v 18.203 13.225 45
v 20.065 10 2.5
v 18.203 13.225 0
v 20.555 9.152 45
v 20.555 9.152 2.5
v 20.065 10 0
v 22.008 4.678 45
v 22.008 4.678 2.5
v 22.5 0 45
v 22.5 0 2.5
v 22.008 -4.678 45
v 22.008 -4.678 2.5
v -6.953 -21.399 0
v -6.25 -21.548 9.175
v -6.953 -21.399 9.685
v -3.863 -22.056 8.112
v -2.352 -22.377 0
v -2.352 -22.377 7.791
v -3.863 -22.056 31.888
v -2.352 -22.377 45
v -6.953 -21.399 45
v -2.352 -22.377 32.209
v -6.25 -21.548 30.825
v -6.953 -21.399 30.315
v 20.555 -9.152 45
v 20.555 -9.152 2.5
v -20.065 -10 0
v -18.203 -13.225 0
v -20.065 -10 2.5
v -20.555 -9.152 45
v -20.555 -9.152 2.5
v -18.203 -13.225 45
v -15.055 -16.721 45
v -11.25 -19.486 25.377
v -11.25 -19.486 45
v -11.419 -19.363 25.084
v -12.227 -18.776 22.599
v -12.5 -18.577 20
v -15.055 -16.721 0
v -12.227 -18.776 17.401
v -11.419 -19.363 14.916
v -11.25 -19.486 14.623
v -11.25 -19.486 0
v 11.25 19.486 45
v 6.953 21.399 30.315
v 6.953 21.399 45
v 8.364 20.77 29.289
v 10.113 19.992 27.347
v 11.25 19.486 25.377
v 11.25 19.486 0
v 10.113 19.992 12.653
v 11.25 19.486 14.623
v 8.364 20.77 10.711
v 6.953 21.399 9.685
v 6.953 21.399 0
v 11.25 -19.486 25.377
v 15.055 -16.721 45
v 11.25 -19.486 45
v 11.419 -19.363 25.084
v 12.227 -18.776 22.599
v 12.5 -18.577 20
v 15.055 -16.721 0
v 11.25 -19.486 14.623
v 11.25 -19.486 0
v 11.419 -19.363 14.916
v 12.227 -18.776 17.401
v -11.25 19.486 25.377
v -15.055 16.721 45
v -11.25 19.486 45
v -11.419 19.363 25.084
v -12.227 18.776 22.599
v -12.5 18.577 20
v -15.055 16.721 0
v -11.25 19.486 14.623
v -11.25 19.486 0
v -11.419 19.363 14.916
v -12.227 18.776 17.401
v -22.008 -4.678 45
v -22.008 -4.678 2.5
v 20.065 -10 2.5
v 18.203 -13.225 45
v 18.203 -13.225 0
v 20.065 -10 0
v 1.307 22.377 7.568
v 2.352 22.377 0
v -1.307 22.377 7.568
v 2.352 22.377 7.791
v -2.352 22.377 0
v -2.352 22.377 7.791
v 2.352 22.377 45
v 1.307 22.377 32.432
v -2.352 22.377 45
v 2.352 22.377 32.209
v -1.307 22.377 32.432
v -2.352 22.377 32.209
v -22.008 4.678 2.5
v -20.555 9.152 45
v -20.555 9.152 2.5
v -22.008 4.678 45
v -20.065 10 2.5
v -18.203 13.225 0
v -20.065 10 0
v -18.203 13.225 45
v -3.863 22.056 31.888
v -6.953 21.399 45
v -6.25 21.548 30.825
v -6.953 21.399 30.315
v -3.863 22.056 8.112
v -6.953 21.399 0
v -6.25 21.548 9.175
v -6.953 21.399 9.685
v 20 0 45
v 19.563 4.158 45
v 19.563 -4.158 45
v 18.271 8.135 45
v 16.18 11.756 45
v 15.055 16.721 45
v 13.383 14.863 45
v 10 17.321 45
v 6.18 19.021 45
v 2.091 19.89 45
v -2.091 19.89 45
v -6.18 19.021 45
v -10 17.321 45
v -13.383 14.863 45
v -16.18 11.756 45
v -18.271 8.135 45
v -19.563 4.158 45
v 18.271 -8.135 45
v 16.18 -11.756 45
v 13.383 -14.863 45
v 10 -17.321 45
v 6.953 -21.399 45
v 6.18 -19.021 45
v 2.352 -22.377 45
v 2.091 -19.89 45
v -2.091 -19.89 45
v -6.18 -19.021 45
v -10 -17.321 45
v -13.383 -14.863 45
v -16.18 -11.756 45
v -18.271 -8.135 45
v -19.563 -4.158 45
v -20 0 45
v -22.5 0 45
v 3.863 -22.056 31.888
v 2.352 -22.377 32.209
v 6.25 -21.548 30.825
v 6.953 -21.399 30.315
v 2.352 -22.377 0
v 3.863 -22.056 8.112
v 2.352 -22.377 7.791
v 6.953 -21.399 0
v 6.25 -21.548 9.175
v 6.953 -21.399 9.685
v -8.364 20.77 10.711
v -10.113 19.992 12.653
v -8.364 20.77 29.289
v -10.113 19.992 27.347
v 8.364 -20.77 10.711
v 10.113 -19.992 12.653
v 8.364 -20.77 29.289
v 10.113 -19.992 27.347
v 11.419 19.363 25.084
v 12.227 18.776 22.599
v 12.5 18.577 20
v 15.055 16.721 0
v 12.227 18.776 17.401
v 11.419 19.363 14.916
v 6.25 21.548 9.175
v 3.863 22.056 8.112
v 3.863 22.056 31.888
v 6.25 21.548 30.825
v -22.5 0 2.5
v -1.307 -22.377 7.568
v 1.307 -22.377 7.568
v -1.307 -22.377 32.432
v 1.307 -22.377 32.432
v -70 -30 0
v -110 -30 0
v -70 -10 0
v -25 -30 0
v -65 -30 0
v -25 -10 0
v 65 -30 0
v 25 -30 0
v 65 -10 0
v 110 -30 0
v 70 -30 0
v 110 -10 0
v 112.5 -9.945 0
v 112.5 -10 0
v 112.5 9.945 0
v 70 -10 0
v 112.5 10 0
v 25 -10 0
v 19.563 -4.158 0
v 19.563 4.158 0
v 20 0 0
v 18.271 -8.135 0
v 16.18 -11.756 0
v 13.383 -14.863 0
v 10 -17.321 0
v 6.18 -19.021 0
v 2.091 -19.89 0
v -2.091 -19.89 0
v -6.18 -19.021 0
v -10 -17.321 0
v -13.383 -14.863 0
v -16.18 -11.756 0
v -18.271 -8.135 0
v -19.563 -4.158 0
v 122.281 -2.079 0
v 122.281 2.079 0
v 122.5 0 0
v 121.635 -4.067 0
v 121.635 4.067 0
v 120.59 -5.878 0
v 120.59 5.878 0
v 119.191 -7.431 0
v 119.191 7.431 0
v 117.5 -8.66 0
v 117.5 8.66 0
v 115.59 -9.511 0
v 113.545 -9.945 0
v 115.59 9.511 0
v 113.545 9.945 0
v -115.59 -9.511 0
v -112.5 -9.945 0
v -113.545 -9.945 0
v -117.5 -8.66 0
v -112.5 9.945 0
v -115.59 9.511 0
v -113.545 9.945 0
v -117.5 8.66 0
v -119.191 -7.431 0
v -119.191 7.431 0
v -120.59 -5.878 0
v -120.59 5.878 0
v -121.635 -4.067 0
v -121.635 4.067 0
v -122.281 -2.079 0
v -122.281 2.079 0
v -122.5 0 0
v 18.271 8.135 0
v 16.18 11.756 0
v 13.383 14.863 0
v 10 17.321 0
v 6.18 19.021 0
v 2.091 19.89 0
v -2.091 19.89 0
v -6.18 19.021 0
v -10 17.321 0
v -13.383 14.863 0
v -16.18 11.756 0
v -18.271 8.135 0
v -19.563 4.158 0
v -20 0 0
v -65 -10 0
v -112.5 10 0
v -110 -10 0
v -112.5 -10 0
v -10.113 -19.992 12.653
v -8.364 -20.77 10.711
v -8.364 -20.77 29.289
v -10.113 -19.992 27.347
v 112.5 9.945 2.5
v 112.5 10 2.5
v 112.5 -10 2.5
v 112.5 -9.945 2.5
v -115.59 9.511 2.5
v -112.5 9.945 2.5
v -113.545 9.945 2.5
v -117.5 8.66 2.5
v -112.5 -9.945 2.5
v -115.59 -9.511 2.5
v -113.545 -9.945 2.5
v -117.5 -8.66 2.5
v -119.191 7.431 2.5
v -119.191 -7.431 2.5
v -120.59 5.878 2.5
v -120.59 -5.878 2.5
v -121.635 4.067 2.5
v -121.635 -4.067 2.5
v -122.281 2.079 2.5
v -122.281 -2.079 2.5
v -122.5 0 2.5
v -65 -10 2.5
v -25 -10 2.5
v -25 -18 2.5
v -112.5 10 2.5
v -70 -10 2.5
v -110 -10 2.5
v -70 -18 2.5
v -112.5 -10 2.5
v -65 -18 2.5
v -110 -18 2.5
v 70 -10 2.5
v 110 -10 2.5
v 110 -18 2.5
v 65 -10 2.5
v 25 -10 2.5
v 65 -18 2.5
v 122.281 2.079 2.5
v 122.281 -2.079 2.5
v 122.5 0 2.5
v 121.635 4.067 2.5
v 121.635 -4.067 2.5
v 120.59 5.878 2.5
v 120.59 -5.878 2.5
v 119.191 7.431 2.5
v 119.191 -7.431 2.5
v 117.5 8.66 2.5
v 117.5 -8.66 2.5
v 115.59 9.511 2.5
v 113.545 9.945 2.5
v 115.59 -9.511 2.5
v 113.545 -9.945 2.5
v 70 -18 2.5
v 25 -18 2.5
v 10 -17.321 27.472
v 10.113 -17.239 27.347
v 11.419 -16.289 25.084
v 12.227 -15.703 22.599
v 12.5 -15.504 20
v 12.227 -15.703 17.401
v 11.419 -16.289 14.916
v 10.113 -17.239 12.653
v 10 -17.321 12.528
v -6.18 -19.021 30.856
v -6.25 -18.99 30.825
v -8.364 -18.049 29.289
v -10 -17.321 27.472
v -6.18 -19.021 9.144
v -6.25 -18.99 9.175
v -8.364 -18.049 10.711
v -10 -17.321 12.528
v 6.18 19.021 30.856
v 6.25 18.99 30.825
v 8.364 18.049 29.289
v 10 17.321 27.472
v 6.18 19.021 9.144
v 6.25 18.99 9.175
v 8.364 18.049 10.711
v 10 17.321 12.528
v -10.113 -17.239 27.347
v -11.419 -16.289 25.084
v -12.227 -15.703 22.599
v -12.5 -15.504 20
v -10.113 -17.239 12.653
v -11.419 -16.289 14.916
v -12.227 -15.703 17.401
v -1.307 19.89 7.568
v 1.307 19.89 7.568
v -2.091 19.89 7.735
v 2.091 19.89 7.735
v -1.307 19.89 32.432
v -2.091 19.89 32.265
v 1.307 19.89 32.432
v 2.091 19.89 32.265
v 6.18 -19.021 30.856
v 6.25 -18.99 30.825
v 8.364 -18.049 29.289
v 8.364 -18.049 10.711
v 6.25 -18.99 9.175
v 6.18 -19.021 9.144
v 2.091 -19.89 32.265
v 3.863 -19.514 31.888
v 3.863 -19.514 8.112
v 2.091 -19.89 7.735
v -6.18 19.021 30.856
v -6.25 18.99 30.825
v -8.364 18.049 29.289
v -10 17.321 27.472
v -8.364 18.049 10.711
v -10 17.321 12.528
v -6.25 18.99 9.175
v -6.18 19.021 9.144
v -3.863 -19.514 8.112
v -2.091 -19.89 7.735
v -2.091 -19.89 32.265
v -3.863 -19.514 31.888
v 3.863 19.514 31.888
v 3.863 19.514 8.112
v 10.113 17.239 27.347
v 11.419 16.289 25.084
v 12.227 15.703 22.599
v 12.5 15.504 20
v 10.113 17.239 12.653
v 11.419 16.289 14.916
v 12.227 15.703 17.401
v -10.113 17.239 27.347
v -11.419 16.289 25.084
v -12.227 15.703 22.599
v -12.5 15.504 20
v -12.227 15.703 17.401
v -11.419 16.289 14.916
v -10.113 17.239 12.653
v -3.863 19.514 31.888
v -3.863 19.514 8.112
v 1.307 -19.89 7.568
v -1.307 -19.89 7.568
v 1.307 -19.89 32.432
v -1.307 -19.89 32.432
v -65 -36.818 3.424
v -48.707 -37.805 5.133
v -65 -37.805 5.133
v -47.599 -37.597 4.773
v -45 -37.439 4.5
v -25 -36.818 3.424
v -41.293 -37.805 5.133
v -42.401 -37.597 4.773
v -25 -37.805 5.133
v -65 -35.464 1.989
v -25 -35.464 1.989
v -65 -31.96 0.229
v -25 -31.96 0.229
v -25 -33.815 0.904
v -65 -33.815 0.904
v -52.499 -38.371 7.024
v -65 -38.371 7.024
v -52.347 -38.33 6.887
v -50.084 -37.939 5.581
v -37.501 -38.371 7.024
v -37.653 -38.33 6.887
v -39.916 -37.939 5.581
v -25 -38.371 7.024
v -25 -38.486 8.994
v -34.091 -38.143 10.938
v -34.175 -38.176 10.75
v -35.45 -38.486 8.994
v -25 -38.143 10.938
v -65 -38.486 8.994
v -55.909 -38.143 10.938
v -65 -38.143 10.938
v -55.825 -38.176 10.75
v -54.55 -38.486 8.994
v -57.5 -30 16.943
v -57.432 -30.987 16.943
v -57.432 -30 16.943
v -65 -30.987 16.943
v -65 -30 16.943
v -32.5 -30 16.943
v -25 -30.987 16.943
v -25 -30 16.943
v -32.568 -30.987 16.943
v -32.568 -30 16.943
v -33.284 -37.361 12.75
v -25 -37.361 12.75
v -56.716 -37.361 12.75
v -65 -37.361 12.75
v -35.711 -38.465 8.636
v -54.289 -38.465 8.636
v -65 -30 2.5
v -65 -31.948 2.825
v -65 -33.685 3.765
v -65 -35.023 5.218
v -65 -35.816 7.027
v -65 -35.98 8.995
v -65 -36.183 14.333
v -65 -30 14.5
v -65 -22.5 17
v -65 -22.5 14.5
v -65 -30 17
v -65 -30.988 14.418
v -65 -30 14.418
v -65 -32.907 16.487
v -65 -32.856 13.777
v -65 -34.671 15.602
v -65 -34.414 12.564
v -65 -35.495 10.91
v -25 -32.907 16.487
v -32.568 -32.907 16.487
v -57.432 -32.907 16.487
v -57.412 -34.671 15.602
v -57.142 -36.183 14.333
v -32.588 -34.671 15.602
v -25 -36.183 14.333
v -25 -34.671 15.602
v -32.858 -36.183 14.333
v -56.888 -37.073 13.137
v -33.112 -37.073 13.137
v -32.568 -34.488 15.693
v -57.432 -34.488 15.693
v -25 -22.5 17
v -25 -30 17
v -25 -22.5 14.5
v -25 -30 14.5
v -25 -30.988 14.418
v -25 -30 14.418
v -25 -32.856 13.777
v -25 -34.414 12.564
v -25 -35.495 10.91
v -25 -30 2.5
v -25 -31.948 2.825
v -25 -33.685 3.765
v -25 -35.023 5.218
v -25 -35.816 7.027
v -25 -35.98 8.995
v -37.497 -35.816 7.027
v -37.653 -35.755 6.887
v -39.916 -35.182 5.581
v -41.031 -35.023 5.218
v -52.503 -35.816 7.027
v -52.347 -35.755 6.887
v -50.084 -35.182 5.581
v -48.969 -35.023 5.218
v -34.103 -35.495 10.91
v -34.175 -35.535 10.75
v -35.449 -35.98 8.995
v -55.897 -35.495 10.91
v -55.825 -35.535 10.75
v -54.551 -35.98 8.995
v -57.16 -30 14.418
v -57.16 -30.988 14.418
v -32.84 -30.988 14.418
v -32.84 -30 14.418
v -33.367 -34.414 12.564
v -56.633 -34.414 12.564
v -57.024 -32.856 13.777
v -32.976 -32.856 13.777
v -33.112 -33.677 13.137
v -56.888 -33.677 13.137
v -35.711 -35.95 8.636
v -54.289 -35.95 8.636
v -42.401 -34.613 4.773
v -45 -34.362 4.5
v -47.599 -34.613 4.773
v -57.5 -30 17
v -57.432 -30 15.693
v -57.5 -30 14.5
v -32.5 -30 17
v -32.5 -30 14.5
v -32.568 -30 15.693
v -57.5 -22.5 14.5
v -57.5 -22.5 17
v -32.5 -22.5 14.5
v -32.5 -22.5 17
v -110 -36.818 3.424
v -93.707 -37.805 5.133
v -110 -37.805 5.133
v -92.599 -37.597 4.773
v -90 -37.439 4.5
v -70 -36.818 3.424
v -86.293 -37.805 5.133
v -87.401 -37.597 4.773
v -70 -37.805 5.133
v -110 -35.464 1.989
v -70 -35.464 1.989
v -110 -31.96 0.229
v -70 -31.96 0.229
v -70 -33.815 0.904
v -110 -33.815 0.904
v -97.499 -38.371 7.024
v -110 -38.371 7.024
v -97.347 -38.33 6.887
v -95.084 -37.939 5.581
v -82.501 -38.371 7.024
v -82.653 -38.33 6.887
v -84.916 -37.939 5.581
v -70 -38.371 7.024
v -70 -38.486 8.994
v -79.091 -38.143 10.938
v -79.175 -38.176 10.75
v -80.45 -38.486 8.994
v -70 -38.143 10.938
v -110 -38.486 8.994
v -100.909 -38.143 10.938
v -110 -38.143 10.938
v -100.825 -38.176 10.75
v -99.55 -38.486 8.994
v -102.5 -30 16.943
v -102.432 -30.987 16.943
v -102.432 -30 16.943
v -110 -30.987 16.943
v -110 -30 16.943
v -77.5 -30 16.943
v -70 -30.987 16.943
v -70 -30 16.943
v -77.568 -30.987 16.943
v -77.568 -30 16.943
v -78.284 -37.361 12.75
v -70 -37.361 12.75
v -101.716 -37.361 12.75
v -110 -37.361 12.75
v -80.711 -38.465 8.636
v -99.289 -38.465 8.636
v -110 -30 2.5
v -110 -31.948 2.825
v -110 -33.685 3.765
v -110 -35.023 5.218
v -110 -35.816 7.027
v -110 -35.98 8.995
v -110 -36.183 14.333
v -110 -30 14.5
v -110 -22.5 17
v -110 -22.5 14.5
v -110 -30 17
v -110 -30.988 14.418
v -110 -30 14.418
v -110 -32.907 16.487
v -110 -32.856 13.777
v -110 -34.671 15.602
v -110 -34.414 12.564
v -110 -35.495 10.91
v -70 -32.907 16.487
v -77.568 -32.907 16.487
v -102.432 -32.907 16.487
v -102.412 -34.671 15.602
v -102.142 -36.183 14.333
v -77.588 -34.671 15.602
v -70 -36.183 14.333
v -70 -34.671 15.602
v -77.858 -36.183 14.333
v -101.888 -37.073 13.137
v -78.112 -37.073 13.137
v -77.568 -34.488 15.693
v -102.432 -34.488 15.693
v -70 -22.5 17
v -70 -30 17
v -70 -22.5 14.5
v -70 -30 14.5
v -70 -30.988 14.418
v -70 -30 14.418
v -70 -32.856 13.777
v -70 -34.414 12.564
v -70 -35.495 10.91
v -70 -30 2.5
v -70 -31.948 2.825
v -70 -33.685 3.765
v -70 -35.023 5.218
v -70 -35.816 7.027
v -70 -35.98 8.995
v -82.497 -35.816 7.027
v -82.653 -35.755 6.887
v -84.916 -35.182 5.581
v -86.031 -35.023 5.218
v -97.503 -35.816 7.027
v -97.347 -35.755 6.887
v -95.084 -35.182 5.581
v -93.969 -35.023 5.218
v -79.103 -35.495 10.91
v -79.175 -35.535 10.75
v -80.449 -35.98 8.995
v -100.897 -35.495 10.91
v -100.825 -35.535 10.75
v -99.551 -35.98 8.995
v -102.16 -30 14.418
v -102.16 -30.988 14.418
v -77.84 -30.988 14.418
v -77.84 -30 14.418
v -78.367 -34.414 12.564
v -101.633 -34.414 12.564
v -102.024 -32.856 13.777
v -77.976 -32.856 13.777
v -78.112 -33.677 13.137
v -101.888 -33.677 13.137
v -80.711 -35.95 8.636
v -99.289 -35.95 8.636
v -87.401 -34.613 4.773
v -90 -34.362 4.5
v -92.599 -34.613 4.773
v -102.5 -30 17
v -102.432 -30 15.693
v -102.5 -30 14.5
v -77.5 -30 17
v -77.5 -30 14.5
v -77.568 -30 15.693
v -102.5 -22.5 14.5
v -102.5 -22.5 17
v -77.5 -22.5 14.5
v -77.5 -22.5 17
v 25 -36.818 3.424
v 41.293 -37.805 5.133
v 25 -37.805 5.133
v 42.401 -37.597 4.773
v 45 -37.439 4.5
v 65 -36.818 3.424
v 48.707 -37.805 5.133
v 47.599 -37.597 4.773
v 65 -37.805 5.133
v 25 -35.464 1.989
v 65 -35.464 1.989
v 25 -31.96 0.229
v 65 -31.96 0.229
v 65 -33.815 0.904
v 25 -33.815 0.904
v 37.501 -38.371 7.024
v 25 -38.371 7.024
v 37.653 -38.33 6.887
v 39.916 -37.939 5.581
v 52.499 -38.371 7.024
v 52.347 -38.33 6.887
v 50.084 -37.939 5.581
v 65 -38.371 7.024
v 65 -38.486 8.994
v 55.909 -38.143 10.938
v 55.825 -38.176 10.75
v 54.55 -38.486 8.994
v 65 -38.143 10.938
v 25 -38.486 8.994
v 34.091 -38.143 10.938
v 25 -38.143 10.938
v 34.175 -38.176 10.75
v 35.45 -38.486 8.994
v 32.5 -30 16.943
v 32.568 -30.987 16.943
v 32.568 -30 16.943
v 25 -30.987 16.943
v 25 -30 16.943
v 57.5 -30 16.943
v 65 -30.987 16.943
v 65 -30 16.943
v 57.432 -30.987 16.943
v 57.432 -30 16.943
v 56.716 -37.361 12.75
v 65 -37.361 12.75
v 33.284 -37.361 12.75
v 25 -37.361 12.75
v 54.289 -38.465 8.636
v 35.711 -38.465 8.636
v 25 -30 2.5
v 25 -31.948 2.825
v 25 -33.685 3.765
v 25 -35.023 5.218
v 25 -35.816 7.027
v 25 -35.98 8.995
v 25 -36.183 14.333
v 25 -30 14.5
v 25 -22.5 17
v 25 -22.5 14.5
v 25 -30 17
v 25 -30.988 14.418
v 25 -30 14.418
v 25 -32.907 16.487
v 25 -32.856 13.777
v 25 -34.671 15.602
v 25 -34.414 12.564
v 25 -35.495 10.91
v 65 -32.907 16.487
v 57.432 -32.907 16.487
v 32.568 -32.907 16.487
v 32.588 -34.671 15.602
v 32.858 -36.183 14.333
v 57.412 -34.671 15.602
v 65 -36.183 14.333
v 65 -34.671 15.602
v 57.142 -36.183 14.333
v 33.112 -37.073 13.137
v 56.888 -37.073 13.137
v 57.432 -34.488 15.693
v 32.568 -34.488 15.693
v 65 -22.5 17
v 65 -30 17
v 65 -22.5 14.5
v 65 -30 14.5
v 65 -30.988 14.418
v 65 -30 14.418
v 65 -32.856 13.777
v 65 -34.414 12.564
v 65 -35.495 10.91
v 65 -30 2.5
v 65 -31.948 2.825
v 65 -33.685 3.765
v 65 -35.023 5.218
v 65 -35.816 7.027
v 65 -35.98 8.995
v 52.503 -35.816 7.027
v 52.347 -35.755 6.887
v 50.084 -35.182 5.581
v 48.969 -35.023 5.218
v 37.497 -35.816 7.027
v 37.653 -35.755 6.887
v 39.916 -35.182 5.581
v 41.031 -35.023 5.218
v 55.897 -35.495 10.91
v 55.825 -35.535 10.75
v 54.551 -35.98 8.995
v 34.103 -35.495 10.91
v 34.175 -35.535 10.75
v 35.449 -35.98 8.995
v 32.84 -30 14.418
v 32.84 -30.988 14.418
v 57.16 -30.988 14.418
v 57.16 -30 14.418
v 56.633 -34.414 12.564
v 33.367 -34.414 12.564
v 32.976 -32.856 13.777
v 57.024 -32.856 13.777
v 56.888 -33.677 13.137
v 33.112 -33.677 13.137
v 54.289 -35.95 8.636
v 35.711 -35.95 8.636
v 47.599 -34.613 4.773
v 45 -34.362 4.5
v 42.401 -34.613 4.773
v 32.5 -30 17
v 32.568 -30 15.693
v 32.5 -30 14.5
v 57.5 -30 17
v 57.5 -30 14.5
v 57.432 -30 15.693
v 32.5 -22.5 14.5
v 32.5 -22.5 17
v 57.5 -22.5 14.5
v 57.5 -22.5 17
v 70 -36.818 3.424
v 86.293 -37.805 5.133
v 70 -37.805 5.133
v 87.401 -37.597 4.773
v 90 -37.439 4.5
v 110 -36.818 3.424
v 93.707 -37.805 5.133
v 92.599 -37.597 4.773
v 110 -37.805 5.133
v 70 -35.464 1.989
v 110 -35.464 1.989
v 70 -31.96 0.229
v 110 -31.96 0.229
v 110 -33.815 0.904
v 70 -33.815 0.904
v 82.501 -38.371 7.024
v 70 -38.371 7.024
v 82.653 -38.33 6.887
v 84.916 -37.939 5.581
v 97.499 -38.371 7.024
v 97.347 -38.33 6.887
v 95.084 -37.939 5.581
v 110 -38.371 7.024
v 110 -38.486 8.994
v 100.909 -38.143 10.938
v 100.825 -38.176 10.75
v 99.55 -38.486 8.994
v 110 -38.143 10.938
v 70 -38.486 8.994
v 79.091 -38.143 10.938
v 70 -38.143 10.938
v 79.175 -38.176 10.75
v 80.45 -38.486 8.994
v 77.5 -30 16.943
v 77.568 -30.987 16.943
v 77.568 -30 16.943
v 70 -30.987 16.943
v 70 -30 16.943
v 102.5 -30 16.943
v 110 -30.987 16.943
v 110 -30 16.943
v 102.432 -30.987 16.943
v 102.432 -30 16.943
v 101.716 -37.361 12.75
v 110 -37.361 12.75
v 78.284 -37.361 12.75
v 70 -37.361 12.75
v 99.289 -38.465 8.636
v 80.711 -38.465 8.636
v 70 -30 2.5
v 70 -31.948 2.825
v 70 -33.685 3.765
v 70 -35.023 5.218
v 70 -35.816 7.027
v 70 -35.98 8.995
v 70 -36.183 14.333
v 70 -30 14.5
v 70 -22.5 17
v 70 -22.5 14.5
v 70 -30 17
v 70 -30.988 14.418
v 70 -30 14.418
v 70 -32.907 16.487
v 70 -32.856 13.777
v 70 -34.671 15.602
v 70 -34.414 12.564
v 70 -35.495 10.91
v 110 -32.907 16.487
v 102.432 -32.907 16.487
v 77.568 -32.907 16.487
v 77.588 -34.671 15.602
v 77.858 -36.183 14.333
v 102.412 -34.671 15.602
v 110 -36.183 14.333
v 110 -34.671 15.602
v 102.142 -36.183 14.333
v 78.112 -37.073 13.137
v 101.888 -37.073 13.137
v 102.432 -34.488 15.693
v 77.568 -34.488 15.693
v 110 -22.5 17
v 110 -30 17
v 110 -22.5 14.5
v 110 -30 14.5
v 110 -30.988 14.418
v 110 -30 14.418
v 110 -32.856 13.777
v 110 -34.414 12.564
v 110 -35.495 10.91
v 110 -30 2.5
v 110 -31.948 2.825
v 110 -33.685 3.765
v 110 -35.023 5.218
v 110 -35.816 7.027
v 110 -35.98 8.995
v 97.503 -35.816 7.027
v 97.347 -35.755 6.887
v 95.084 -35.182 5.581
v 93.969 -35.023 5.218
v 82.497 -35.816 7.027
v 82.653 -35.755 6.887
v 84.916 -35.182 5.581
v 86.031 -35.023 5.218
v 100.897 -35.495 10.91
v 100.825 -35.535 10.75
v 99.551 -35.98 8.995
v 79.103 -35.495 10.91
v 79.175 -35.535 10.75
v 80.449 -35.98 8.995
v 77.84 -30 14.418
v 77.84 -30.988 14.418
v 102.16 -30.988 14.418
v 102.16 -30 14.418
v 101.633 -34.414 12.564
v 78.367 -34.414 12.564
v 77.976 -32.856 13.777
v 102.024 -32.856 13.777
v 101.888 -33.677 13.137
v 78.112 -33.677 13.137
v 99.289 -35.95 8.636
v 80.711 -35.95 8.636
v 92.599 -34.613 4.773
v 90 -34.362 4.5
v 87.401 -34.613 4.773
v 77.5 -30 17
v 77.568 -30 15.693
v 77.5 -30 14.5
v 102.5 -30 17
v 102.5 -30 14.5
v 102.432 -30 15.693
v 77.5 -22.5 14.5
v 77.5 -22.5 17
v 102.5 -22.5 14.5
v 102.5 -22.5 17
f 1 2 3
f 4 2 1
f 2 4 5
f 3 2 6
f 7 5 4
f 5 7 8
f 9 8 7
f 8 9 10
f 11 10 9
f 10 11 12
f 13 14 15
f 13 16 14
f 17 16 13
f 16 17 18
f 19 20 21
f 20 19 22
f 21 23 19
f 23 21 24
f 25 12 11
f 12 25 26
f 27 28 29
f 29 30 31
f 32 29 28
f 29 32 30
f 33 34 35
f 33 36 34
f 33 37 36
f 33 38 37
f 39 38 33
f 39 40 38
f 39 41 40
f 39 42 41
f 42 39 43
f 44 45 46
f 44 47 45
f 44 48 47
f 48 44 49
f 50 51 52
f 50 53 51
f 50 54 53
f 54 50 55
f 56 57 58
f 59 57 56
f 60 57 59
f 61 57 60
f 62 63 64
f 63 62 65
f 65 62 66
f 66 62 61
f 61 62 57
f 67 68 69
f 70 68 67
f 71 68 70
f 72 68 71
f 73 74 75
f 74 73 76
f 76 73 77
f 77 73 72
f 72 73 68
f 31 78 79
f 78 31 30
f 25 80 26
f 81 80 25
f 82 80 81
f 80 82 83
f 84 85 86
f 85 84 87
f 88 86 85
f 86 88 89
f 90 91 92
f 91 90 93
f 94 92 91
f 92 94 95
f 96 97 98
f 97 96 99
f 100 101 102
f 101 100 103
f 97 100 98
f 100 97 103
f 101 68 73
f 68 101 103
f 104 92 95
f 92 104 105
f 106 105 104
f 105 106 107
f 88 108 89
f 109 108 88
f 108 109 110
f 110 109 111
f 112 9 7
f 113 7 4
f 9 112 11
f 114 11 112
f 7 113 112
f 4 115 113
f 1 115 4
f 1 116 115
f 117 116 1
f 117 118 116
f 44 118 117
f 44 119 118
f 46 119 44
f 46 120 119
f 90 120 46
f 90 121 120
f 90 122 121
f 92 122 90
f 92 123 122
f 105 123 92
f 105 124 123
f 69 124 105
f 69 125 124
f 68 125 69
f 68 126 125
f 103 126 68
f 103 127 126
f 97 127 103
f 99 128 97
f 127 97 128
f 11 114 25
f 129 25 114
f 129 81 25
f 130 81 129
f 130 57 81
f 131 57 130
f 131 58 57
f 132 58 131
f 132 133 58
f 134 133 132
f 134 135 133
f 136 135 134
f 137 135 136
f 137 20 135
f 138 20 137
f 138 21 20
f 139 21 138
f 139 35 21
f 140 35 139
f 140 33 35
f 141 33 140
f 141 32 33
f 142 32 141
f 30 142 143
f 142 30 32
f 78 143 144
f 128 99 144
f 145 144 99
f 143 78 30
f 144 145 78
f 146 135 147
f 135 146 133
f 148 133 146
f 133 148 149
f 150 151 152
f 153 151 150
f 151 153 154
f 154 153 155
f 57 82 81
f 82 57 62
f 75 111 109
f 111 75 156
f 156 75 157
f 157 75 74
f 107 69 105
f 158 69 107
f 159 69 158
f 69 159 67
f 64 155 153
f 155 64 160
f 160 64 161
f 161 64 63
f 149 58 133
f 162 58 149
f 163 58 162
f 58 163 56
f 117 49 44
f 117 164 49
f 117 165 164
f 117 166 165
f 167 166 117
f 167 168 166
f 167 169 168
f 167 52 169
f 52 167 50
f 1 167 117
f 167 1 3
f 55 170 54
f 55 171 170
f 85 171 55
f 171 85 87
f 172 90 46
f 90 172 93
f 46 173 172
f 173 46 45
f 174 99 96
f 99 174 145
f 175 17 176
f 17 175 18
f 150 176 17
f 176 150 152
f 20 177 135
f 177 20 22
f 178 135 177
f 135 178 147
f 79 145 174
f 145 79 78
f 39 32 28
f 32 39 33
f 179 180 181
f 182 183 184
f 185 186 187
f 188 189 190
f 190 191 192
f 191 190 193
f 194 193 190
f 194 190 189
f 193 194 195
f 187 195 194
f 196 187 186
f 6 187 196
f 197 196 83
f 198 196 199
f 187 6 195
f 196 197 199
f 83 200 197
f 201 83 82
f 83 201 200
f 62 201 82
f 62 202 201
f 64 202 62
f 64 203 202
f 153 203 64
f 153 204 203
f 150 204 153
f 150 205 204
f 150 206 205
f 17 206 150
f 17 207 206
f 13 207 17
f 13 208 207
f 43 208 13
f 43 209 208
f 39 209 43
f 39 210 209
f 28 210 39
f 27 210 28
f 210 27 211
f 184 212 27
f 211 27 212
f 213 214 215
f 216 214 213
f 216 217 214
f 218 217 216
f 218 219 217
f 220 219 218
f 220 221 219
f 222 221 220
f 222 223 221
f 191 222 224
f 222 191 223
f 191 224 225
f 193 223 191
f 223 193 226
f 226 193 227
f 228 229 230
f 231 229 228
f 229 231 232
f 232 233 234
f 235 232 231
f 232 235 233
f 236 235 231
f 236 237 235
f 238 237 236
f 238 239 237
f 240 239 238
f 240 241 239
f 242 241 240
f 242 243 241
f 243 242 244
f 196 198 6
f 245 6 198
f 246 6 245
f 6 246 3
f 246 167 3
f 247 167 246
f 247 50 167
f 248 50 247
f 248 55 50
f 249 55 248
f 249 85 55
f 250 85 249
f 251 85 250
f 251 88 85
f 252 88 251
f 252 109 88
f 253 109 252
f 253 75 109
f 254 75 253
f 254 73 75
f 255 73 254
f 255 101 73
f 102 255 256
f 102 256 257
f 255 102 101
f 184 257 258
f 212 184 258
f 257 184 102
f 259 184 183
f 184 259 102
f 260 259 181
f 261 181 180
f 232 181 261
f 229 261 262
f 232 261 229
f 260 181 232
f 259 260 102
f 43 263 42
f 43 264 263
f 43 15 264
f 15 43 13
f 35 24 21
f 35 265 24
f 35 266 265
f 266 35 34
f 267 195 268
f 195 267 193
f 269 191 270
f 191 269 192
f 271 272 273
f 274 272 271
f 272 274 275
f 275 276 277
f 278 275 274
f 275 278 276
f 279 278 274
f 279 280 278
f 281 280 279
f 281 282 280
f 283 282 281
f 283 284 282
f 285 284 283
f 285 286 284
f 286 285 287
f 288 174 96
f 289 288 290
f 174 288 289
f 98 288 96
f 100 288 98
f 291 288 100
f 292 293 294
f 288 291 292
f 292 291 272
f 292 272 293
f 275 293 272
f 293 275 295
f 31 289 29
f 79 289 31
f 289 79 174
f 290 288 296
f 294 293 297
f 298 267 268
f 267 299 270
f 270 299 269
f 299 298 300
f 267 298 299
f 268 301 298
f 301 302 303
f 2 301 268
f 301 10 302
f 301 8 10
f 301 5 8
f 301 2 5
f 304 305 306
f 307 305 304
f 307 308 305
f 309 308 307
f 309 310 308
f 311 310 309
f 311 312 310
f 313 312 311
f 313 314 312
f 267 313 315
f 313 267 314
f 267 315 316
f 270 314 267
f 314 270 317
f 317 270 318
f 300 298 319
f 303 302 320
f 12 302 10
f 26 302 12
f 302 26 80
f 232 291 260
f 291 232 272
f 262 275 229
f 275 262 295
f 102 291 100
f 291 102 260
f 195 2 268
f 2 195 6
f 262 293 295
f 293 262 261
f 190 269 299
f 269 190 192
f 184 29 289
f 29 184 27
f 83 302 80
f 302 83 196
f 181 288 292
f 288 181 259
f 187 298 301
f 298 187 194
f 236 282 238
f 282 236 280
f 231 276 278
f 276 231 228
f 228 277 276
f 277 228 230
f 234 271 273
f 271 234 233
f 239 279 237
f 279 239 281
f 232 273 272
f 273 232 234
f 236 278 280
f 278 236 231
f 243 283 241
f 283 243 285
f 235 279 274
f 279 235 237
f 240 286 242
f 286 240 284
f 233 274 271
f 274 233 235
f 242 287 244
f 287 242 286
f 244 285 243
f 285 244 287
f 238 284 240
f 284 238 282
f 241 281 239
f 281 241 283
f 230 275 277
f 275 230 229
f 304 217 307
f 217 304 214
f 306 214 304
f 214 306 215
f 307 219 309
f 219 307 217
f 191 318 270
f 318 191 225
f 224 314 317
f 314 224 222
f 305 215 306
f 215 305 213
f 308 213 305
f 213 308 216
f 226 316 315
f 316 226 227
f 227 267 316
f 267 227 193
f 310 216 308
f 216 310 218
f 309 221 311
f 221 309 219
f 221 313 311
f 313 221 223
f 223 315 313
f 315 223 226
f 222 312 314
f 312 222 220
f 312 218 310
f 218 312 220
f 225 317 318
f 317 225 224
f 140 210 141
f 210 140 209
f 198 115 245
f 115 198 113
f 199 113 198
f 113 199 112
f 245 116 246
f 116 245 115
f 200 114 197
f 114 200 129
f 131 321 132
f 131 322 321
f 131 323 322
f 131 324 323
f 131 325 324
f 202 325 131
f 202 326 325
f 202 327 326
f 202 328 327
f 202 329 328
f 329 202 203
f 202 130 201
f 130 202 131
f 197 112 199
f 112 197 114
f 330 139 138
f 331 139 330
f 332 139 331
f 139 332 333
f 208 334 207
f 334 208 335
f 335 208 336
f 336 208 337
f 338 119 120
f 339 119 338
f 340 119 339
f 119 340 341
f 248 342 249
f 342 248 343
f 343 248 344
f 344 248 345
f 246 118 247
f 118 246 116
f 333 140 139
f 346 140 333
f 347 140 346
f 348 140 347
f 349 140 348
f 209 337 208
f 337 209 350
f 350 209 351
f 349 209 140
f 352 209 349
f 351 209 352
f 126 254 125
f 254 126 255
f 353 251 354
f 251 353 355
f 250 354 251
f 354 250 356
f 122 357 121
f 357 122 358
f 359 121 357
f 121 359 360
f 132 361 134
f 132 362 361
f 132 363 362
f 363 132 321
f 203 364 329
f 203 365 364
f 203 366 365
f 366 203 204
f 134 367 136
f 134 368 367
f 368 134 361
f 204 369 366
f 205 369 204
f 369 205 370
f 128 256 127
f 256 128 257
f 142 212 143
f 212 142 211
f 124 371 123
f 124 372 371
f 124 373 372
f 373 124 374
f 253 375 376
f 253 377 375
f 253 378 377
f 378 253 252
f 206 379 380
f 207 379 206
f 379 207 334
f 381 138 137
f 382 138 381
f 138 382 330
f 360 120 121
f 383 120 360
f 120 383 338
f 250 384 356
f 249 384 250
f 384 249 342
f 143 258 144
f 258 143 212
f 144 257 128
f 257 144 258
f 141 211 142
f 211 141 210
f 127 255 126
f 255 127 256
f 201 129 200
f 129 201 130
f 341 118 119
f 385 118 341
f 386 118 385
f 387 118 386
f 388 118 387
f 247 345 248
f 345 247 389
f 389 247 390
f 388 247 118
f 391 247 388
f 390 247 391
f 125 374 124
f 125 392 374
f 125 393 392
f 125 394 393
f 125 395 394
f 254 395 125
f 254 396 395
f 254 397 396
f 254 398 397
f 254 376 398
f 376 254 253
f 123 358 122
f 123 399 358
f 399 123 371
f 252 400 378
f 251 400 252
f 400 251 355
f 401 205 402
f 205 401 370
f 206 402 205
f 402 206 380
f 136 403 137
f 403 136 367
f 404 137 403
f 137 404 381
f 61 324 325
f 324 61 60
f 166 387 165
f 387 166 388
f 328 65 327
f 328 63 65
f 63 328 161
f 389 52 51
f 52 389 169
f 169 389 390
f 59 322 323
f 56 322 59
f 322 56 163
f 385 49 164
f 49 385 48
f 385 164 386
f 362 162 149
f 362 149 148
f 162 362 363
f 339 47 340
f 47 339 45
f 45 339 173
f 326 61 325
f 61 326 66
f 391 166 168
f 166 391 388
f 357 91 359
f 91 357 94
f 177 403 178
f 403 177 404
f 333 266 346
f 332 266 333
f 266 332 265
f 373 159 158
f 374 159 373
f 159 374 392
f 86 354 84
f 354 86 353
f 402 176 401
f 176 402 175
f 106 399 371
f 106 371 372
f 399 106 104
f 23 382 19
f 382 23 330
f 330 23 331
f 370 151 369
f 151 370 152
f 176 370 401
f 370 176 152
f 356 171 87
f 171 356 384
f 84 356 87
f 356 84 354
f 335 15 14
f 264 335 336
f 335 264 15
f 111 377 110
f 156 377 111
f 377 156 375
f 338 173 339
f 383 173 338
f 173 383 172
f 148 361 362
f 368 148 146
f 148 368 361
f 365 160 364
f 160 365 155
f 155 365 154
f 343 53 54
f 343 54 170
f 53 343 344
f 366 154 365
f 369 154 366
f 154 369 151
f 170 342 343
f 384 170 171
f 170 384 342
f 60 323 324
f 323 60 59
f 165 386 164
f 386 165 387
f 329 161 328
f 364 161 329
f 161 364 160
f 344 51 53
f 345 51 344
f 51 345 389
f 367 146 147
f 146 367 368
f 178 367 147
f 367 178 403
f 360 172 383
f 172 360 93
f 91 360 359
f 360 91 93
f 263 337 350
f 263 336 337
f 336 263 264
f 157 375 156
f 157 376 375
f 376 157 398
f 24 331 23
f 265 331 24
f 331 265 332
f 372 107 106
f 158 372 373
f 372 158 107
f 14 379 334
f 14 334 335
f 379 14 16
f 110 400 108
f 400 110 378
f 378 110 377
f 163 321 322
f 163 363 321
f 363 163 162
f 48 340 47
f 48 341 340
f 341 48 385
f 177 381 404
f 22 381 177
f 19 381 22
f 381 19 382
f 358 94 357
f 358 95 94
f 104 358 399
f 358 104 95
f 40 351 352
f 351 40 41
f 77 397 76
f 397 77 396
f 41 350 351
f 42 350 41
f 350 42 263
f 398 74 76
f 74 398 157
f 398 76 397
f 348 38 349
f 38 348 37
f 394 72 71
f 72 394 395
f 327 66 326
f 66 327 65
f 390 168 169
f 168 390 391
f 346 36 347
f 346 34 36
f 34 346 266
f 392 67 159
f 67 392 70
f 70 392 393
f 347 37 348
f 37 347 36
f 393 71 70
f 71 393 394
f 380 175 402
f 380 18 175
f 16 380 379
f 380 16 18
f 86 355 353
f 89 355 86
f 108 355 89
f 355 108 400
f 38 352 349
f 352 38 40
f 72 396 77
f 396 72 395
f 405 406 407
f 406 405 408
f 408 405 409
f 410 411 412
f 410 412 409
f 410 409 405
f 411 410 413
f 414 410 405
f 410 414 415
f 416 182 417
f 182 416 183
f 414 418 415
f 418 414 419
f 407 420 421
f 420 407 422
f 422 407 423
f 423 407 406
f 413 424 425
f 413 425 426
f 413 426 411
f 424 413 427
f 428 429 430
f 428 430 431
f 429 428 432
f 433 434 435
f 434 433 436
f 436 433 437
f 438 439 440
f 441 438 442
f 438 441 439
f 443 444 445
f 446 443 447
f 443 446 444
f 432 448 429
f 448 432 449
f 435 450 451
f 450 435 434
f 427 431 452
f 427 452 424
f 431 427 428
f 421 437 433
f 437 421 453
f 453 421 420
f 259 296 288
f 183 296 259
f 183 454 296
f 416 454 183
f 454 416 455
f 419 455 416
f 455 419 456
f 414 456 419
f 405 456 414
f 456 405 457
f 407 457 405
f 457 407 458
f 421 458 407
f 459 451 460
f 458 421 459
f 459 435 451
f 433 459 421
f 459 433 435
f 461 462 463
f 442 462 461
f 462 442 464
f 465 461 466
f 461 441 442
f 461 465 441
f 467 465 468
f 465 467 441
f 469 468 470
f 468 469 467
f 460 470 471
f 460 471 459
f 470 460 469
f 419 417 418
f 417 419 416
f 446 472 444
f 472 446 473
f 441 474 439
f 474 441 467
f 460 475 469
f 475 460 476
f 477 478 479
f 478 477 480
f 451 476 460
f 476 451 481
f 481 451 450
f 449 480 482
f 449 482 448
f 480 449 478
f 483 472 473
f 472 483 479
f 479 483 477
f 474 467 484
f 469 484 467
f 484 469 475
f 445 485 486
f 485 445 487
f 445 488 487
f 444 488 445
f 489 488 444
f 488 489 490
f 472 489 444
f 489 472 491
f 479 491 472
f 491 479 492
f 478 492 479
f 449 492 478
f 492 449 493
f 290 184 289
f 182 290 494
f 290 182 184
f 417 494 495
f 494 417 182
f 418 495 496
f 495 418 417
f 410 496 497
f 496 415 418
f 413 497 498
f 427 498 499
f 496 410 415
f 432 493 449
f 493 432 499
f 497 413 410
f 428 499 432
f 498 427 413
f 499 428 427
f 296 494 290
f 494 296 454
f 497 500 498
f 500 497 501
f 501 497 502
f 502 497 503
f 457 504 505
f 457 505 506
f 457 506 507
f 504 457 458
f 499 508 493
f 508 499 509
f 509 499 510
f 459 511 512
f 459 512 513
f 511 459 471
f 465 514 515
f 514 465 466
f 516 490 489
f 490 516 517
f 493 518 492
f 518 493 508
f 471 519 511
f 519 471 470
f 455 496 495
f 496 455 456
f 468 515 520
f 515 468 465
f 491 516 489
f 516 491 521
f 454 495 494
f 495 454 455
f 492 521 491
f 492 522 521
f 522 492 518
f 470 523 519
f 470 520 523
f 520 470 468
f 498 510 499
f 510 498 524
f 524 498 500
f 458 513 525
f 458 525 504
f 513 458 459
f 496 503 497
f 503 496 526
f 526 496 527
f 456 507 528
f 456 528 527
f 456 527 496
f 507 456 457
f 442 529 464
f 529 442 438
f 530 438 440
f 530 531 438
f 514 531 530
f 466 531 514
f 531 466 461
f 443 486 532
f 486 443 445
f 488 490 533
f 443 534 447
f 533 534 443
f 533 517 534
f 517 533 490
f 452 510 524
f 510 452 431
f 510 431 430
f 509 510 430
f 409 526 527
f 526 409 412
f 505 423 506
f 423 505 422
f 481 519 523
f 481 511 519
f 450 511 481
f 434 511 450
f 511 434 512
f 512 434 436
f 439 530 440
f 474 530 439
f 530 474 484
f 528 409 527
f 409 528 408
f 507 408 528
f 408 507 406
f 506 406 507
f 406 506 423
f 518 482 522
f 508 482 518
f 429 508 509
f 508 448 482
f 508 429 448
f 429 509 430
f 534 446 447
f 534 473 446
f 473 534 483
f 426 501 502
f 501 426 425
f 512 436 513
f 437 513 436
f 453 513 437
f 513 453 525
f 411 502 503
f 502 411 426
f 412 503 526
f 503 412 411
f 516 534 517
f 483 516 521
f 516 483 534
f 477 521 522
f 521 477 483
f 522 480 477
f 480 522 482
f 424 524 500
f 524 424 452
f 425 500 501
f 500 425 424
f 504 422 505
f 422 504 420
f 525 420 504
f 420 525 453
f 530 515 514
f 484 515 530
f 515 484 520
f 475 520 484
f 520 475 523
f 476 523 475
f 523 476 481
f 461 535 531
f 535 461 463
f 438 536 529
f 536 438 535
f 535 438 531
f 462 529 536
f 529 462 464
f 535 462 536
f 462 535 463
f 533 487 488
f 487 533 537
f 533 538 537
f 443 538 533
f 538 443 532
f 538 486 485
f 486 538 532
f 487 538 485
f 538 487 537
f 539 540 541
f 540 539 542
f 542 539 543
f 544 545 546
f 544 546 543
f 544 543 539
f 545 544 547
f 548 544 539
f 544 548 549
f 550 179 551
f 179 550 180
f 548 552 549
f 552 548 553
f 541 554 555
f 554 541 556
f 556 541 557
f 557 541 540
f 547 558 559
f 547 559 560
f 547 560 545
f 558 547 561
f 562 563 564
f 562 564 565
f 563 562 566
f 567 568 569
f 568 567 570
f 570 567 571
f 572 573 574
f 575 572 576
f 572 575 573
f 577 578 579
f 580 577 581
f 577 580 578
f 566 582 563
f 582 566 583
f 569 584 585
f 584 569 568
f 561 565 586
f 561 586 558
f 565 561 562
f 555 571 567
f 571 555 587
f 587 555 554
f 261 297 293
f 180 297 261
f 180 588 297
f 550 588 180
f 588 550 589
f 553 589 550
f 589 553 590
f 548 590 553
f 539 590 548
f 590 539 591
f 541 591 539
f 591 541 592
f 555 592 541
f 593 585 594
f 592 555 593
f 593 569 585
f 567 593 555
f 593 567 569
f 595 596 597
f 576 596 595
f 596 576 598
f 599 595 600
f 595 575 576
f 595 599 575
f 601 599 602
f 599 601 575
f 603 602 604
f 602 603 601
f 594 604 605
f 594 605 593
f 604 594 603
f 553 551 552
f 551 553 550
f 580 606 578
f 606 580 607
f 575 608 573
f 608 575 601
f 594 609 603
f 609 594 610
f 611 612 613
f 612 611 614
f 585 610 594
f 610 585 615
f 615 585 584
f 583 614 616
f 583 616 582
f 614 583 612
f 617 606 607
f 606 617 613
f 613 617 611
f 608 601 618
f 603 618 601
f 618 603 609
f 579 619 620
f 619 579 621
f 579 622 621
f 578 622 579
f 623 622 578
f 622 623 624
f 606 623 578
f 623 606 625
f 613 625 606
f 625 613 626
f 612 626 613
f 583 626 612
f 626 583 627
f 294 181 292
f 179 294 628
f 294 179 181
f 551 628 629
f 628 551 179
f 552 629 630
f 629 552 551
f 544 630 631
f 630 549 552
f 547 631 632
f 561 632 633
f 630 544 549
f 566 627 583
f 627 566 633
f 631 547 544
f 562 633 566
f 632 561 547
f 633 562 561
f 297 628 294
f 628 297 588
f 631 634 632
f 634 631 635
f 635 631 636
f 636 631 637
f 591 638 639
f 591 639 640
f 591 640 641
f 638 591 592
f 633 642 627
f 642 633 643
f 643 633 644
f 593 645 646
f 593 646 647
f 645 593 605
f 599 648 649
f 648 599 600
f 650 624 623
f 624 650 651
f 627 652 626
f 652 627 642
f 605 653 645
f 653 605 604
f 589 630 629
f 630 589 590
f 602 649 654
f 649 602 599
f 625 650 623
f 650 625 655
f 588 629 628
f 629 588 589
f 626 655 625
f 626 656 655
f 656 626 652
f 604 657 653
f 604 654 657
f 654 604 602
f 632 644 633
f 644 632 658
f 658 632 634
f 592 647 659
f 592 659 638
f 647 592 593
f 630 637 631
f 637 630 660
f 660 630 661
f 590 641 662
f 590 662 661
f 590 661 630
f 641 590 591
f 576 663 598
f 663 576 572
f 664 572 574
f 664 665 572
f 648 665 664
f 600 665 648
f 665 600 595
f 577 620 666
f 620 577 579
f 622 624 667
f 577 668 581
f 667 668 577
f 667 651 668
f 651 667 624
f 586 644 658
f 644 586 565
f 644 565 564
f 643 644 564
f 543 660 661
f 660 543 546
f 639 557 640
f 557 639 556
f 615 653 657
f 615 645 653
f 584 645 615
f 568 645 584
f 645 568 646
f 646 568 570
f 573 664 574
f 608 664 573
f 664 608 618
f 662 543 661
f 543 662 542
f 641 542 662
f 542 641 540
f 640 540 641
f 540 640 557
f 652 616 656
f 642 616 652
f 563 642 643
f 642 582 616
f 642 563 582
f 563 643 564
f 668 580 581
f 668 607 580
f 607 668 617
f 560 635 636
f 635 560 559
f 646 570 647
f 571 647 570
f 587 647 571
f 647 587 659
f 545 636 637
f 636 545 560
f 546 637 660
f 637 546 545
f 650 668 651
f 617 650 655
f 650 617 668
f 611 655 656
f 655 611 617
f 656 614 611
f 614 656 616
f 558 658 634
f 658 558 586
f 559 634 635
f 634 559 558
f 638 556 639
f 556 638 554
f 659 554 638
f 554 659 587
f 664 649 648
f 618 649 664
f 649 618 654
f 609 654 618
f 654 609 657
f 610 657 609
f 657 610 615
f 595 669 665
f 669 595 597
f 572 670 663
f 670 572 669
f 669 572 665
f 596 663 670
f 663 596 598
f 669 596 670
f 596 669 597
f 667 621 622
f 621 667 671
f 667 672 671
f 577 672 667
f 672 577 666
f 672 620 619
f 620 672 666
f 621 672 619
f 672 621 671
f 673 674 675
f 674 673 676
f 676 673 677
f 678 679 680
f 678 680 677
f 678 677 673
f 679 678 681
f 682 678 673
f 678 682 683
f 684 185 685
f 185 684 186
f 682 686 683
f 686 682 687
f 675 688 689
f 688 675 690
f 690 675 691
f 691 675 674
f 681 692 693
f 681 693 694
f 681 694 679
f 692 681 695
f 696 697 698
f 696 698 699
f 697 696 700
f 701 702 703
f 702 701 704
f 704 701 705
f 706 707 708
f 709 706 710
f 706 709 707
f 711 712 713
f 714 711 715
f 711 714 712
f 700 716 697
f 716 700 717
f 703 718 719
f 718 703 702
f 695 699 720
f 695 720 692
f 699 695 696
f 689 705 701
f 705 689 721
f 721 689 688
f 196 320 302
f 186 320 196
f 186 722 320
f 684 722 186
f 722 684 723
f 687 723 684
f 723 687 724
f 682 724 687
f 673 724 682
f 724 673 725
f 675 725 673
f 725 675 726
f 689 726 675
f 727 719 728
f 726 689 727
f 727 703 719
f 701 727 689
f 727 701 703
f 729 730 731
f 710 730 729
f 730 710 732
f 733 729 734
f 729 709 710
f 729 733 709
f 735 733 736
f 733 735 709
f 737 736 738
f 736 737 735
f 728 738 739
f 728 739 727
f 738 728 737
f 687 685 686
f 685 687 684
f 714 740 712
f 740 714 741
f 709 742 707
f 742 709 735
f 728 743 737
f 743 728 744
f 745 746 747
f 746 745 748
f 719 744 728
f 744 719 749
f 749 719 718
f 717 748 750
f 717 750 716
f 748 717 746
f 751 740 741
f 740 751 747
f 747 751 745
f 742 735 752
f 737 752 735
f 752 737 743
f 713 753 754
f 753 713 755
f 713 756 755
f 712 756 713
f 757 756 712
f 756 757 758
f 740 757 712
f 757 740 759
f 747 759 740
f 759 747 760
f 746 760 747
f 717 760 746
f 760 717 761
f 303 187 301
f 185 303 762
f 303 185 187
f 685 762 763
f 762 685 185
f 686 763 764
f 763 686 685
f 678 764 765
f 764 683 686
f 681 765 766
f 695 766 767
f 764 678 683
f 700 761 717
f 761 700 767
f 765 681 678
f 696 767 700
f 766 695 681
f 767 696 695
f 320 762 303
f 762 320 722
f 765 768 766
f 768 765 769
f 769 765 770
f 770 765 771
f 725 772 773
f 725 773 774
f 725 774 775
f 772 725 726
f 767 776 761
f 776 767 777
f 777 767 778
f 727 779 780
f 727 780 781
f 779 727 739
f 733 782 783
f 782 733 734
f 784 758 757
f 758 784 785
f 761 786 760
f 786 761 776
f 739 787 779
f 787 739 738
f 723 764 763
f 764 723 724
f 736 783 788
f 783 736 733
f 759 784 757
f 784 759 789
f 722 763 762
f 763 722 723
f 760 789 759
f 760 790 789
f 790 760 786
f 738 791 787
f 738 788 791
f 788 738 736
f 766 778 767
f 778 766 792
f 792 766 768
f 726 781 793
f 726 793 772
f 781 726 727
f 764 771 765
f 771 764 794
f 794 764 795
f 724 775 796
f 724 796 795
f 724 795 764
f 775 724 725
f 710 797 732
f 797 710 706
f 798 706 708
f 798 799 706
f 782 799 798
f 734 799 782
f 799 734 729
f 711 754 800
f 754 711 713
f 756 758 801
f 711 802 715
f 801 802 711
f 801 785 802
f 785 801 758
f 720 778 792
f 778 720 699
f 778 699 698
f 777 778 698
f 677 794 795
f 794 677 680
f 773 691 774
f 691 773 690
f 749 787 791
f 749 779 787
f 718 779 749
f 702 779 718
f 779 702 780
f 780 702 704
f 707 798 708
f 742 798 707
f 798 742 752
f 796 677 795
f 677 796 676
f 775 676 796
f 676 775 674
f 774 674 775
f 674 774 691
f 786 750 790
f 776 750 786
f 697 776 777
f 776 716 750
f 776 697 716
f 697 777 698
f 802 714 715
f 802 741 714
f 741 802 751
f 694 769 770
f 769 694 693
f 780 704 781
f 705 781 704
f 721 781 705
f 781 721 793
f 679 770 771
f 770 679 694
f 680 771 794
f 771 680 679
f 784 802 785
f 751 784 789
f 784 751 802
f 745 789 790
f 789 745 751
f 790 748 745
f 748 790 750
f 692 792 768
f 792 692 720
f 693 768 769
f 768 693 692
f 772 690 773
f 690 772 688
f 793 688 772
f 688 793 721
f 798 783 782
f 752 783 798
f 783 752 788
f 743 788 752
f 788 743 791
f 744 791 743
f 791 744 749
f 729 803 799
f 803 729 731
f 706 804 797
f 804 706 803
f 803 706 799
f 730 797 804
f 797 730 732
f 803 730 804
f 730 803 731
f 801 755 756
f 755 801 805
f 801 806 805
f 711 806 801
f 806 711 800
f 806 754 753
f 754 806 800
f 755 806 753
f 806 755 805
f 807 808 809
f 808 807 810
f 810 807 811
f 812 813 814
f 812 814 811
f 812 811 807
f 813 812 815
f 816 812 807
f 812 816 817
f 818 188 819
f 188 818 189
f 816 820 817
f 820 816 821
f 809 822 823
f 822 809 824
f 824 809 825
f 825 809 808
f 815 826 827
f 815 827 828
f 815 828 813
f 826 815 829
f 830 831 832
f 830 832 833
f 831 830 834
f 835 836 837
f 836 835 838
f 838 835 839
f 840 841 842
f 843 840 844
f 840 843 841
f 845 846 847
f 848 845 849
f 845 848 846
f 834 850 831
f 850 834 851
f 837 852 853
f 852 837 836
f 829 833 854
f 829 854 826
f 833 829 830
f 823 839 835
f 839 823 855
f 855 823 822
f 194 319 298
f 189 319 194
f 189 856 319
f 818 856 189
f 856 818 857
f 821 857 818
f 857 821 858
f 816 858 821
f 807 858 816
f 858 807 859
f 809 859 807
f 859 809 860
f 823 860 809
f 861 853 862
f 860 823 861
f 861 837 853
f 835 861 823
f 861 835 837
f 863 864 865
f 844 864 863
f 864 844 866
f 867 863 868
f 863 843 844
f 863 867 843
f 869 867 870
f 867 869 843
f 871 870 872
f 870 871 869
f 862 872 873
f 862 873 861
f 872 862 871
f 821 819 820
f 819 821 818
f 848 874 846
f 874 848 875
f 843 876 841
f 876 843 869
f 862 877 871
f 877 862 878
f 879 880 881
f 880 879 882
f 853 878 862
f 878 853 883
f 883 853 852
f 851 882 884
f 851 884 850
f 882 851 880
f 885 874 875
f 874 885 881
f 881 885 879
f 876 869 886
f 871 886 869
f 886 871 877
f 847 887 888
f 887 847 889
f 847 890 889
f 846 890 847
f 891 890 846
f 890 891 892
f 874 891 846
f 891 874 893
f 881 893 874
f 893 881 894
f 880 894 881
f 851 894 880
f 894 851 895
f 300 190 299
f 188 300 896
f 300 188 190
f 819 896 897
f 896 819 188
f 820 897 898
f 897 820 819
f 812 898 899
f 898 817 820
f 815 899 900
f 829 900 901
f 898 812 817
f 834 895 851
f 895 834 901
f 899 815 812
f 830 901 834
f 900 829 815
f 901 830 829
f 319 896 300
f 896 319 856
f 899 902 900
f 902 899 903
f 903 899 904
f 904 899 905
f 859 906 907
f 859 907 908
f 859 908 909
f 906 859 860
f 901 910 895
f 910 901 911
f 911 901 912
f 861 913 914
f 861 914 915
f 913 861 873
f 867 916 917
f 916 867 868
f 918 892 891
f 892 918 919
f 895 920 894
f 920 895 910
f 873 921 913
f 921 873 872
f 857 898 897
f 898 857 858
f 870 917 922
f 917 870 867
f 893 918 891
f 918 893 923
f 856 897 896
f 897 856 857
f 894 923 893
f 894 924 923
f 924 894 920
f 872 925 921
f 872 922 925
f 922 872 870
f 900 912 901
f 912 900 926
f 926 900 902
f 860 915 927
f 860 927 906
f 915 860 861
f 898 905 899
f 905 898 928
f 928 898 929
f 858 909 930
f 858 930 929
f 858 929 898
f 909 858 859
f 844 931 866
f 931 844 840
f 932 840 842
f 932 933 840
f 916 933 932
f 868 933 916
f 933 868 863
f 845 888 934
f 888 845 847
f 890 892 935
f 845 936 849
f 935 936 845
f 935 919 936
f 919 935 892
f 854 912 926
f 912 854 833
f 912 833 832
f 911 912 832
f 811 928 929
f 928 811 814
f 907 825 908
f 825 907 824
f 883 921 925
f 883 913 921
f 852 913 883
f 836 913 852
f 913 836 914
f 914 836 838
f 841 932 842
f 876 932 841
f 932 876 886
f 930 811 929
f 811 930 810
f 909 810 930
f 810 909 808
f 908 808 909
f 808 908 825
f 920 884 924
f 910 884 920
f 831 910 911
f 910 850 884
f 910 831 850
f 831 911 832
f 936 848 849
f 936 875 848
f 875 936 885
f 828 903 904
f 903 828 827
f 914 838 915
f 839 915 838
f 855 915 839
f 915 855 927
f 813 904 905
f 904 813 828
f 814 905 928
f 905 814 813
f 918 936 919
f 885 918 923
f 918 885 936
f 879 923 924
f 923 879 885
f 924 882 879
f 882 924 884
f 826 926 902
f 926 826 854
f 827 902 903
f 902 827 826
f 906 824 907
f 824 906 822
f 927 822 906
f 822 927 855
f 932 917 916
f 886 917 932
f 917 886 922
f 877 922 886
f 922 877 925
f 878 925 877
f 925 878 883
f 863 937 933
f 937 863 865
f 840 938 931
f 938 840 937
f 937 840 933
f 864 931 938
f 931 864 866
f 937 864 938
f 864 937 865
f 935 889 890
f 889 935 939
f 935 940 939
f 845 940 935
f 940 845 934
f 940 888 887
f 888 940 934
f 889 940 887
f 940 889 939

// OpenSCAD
// Drzak holitek na sprchovou tyc
// navleka se na dolni konzoli
// tloustka steny
wall = 2.5;
// prumer konsole
konsd1 = 40;
// prumer tycky
tycd1 = 25;
// hloubka uchyceni
uchyth = 20;
// sirka drzaku
drzaks = 40;
drzakob = 12;
drzakmez = 25;
pdrz = 4;

module uchyceni() {
//  sirkapasu na drzaky pdrz*(drzaks+2*wall)+(konsd+2*wall)
  sirkapasu = pdrz*(drzaks+2*wall)+(konsd1+2*wall); 
  difference() {
    union() {
      cylinder(h=uchyth+tycd1, d=konsd1+2*wall);
      translate([-(sirkapasu/2),-(konsd1/4),0]) cube([sirkapasu,konsd1/2,wall]);
      translate([-(sirkapasu/2),0,0]) cylinder(h=wall,d=konsd1/2);
      translate([sirkapasu/2,0,0]) cylinder(h=wall,d=konsd1/2);  
    }    
    union() {
      cylinder(h=uchyth+tycd1, d=konsd1);  
      translate([0,(konsd1 + 2*wall)/2,uchyth]) 
        rotate([90,0,0]) 
          cylinder(h = konsd1+2*wall, d = tycd1);  
    }  
   }
}

module drzak() {
  translate([-drzaks/2,0,drzakob/2+wall])
    rotate([0,90,0])
    union() {
    translate([-(drzakob/2+wall), 0 ,0]) cube([wall,3*wall,(drzaks - drzakmez)/2]); 
    translate([-(drzakob/2+wall), 0 ,drzaks-(drzaks - drzakmez)/2]) cube([wall,3*wall,(drzaks - drzakmez)/2]); 
    difference() { 
        union() {
            cylinder(h=drzaks, d=drzakob+2*wall);
            translate([drzakob/2, 0 ,0]) cube([wall,drzaks,drzaks]); 
        } 
        union() { // odcitana cast
           cylinder(h=drzaks,d=drzakob); 
           translate([-(drzakob/2+2*wall), 0 ,0]) cube([drzakob+2*wall,drzakob,drzaks]);
           translate([-(drzakob/2+wall), -drzakob,drzaks/2]) rotate([-90,0,0]) cylinder(h=drzaks, d=drzakmez); 
       }
   }
  }
}



uchyceni();
translate([-(drzaks/2 + konsd1/2 + 2*wall),-(1.5*drzaks)/2,0]) drzak();
translate([-(drzaks + drzaks/2 + konsd1/2 + 4*wall),-(1.5*drzaks)/2,0]) drzak();
translate([(drzaks/2 + konsd1/2 + 2*wall),-(1.5*drzaks)/2,0]) drzak();
translate([(drzaks + drzaks/2 + konsd1/2 + 4*wall),-(1.5*drzaks)/2,0]) drzak();
